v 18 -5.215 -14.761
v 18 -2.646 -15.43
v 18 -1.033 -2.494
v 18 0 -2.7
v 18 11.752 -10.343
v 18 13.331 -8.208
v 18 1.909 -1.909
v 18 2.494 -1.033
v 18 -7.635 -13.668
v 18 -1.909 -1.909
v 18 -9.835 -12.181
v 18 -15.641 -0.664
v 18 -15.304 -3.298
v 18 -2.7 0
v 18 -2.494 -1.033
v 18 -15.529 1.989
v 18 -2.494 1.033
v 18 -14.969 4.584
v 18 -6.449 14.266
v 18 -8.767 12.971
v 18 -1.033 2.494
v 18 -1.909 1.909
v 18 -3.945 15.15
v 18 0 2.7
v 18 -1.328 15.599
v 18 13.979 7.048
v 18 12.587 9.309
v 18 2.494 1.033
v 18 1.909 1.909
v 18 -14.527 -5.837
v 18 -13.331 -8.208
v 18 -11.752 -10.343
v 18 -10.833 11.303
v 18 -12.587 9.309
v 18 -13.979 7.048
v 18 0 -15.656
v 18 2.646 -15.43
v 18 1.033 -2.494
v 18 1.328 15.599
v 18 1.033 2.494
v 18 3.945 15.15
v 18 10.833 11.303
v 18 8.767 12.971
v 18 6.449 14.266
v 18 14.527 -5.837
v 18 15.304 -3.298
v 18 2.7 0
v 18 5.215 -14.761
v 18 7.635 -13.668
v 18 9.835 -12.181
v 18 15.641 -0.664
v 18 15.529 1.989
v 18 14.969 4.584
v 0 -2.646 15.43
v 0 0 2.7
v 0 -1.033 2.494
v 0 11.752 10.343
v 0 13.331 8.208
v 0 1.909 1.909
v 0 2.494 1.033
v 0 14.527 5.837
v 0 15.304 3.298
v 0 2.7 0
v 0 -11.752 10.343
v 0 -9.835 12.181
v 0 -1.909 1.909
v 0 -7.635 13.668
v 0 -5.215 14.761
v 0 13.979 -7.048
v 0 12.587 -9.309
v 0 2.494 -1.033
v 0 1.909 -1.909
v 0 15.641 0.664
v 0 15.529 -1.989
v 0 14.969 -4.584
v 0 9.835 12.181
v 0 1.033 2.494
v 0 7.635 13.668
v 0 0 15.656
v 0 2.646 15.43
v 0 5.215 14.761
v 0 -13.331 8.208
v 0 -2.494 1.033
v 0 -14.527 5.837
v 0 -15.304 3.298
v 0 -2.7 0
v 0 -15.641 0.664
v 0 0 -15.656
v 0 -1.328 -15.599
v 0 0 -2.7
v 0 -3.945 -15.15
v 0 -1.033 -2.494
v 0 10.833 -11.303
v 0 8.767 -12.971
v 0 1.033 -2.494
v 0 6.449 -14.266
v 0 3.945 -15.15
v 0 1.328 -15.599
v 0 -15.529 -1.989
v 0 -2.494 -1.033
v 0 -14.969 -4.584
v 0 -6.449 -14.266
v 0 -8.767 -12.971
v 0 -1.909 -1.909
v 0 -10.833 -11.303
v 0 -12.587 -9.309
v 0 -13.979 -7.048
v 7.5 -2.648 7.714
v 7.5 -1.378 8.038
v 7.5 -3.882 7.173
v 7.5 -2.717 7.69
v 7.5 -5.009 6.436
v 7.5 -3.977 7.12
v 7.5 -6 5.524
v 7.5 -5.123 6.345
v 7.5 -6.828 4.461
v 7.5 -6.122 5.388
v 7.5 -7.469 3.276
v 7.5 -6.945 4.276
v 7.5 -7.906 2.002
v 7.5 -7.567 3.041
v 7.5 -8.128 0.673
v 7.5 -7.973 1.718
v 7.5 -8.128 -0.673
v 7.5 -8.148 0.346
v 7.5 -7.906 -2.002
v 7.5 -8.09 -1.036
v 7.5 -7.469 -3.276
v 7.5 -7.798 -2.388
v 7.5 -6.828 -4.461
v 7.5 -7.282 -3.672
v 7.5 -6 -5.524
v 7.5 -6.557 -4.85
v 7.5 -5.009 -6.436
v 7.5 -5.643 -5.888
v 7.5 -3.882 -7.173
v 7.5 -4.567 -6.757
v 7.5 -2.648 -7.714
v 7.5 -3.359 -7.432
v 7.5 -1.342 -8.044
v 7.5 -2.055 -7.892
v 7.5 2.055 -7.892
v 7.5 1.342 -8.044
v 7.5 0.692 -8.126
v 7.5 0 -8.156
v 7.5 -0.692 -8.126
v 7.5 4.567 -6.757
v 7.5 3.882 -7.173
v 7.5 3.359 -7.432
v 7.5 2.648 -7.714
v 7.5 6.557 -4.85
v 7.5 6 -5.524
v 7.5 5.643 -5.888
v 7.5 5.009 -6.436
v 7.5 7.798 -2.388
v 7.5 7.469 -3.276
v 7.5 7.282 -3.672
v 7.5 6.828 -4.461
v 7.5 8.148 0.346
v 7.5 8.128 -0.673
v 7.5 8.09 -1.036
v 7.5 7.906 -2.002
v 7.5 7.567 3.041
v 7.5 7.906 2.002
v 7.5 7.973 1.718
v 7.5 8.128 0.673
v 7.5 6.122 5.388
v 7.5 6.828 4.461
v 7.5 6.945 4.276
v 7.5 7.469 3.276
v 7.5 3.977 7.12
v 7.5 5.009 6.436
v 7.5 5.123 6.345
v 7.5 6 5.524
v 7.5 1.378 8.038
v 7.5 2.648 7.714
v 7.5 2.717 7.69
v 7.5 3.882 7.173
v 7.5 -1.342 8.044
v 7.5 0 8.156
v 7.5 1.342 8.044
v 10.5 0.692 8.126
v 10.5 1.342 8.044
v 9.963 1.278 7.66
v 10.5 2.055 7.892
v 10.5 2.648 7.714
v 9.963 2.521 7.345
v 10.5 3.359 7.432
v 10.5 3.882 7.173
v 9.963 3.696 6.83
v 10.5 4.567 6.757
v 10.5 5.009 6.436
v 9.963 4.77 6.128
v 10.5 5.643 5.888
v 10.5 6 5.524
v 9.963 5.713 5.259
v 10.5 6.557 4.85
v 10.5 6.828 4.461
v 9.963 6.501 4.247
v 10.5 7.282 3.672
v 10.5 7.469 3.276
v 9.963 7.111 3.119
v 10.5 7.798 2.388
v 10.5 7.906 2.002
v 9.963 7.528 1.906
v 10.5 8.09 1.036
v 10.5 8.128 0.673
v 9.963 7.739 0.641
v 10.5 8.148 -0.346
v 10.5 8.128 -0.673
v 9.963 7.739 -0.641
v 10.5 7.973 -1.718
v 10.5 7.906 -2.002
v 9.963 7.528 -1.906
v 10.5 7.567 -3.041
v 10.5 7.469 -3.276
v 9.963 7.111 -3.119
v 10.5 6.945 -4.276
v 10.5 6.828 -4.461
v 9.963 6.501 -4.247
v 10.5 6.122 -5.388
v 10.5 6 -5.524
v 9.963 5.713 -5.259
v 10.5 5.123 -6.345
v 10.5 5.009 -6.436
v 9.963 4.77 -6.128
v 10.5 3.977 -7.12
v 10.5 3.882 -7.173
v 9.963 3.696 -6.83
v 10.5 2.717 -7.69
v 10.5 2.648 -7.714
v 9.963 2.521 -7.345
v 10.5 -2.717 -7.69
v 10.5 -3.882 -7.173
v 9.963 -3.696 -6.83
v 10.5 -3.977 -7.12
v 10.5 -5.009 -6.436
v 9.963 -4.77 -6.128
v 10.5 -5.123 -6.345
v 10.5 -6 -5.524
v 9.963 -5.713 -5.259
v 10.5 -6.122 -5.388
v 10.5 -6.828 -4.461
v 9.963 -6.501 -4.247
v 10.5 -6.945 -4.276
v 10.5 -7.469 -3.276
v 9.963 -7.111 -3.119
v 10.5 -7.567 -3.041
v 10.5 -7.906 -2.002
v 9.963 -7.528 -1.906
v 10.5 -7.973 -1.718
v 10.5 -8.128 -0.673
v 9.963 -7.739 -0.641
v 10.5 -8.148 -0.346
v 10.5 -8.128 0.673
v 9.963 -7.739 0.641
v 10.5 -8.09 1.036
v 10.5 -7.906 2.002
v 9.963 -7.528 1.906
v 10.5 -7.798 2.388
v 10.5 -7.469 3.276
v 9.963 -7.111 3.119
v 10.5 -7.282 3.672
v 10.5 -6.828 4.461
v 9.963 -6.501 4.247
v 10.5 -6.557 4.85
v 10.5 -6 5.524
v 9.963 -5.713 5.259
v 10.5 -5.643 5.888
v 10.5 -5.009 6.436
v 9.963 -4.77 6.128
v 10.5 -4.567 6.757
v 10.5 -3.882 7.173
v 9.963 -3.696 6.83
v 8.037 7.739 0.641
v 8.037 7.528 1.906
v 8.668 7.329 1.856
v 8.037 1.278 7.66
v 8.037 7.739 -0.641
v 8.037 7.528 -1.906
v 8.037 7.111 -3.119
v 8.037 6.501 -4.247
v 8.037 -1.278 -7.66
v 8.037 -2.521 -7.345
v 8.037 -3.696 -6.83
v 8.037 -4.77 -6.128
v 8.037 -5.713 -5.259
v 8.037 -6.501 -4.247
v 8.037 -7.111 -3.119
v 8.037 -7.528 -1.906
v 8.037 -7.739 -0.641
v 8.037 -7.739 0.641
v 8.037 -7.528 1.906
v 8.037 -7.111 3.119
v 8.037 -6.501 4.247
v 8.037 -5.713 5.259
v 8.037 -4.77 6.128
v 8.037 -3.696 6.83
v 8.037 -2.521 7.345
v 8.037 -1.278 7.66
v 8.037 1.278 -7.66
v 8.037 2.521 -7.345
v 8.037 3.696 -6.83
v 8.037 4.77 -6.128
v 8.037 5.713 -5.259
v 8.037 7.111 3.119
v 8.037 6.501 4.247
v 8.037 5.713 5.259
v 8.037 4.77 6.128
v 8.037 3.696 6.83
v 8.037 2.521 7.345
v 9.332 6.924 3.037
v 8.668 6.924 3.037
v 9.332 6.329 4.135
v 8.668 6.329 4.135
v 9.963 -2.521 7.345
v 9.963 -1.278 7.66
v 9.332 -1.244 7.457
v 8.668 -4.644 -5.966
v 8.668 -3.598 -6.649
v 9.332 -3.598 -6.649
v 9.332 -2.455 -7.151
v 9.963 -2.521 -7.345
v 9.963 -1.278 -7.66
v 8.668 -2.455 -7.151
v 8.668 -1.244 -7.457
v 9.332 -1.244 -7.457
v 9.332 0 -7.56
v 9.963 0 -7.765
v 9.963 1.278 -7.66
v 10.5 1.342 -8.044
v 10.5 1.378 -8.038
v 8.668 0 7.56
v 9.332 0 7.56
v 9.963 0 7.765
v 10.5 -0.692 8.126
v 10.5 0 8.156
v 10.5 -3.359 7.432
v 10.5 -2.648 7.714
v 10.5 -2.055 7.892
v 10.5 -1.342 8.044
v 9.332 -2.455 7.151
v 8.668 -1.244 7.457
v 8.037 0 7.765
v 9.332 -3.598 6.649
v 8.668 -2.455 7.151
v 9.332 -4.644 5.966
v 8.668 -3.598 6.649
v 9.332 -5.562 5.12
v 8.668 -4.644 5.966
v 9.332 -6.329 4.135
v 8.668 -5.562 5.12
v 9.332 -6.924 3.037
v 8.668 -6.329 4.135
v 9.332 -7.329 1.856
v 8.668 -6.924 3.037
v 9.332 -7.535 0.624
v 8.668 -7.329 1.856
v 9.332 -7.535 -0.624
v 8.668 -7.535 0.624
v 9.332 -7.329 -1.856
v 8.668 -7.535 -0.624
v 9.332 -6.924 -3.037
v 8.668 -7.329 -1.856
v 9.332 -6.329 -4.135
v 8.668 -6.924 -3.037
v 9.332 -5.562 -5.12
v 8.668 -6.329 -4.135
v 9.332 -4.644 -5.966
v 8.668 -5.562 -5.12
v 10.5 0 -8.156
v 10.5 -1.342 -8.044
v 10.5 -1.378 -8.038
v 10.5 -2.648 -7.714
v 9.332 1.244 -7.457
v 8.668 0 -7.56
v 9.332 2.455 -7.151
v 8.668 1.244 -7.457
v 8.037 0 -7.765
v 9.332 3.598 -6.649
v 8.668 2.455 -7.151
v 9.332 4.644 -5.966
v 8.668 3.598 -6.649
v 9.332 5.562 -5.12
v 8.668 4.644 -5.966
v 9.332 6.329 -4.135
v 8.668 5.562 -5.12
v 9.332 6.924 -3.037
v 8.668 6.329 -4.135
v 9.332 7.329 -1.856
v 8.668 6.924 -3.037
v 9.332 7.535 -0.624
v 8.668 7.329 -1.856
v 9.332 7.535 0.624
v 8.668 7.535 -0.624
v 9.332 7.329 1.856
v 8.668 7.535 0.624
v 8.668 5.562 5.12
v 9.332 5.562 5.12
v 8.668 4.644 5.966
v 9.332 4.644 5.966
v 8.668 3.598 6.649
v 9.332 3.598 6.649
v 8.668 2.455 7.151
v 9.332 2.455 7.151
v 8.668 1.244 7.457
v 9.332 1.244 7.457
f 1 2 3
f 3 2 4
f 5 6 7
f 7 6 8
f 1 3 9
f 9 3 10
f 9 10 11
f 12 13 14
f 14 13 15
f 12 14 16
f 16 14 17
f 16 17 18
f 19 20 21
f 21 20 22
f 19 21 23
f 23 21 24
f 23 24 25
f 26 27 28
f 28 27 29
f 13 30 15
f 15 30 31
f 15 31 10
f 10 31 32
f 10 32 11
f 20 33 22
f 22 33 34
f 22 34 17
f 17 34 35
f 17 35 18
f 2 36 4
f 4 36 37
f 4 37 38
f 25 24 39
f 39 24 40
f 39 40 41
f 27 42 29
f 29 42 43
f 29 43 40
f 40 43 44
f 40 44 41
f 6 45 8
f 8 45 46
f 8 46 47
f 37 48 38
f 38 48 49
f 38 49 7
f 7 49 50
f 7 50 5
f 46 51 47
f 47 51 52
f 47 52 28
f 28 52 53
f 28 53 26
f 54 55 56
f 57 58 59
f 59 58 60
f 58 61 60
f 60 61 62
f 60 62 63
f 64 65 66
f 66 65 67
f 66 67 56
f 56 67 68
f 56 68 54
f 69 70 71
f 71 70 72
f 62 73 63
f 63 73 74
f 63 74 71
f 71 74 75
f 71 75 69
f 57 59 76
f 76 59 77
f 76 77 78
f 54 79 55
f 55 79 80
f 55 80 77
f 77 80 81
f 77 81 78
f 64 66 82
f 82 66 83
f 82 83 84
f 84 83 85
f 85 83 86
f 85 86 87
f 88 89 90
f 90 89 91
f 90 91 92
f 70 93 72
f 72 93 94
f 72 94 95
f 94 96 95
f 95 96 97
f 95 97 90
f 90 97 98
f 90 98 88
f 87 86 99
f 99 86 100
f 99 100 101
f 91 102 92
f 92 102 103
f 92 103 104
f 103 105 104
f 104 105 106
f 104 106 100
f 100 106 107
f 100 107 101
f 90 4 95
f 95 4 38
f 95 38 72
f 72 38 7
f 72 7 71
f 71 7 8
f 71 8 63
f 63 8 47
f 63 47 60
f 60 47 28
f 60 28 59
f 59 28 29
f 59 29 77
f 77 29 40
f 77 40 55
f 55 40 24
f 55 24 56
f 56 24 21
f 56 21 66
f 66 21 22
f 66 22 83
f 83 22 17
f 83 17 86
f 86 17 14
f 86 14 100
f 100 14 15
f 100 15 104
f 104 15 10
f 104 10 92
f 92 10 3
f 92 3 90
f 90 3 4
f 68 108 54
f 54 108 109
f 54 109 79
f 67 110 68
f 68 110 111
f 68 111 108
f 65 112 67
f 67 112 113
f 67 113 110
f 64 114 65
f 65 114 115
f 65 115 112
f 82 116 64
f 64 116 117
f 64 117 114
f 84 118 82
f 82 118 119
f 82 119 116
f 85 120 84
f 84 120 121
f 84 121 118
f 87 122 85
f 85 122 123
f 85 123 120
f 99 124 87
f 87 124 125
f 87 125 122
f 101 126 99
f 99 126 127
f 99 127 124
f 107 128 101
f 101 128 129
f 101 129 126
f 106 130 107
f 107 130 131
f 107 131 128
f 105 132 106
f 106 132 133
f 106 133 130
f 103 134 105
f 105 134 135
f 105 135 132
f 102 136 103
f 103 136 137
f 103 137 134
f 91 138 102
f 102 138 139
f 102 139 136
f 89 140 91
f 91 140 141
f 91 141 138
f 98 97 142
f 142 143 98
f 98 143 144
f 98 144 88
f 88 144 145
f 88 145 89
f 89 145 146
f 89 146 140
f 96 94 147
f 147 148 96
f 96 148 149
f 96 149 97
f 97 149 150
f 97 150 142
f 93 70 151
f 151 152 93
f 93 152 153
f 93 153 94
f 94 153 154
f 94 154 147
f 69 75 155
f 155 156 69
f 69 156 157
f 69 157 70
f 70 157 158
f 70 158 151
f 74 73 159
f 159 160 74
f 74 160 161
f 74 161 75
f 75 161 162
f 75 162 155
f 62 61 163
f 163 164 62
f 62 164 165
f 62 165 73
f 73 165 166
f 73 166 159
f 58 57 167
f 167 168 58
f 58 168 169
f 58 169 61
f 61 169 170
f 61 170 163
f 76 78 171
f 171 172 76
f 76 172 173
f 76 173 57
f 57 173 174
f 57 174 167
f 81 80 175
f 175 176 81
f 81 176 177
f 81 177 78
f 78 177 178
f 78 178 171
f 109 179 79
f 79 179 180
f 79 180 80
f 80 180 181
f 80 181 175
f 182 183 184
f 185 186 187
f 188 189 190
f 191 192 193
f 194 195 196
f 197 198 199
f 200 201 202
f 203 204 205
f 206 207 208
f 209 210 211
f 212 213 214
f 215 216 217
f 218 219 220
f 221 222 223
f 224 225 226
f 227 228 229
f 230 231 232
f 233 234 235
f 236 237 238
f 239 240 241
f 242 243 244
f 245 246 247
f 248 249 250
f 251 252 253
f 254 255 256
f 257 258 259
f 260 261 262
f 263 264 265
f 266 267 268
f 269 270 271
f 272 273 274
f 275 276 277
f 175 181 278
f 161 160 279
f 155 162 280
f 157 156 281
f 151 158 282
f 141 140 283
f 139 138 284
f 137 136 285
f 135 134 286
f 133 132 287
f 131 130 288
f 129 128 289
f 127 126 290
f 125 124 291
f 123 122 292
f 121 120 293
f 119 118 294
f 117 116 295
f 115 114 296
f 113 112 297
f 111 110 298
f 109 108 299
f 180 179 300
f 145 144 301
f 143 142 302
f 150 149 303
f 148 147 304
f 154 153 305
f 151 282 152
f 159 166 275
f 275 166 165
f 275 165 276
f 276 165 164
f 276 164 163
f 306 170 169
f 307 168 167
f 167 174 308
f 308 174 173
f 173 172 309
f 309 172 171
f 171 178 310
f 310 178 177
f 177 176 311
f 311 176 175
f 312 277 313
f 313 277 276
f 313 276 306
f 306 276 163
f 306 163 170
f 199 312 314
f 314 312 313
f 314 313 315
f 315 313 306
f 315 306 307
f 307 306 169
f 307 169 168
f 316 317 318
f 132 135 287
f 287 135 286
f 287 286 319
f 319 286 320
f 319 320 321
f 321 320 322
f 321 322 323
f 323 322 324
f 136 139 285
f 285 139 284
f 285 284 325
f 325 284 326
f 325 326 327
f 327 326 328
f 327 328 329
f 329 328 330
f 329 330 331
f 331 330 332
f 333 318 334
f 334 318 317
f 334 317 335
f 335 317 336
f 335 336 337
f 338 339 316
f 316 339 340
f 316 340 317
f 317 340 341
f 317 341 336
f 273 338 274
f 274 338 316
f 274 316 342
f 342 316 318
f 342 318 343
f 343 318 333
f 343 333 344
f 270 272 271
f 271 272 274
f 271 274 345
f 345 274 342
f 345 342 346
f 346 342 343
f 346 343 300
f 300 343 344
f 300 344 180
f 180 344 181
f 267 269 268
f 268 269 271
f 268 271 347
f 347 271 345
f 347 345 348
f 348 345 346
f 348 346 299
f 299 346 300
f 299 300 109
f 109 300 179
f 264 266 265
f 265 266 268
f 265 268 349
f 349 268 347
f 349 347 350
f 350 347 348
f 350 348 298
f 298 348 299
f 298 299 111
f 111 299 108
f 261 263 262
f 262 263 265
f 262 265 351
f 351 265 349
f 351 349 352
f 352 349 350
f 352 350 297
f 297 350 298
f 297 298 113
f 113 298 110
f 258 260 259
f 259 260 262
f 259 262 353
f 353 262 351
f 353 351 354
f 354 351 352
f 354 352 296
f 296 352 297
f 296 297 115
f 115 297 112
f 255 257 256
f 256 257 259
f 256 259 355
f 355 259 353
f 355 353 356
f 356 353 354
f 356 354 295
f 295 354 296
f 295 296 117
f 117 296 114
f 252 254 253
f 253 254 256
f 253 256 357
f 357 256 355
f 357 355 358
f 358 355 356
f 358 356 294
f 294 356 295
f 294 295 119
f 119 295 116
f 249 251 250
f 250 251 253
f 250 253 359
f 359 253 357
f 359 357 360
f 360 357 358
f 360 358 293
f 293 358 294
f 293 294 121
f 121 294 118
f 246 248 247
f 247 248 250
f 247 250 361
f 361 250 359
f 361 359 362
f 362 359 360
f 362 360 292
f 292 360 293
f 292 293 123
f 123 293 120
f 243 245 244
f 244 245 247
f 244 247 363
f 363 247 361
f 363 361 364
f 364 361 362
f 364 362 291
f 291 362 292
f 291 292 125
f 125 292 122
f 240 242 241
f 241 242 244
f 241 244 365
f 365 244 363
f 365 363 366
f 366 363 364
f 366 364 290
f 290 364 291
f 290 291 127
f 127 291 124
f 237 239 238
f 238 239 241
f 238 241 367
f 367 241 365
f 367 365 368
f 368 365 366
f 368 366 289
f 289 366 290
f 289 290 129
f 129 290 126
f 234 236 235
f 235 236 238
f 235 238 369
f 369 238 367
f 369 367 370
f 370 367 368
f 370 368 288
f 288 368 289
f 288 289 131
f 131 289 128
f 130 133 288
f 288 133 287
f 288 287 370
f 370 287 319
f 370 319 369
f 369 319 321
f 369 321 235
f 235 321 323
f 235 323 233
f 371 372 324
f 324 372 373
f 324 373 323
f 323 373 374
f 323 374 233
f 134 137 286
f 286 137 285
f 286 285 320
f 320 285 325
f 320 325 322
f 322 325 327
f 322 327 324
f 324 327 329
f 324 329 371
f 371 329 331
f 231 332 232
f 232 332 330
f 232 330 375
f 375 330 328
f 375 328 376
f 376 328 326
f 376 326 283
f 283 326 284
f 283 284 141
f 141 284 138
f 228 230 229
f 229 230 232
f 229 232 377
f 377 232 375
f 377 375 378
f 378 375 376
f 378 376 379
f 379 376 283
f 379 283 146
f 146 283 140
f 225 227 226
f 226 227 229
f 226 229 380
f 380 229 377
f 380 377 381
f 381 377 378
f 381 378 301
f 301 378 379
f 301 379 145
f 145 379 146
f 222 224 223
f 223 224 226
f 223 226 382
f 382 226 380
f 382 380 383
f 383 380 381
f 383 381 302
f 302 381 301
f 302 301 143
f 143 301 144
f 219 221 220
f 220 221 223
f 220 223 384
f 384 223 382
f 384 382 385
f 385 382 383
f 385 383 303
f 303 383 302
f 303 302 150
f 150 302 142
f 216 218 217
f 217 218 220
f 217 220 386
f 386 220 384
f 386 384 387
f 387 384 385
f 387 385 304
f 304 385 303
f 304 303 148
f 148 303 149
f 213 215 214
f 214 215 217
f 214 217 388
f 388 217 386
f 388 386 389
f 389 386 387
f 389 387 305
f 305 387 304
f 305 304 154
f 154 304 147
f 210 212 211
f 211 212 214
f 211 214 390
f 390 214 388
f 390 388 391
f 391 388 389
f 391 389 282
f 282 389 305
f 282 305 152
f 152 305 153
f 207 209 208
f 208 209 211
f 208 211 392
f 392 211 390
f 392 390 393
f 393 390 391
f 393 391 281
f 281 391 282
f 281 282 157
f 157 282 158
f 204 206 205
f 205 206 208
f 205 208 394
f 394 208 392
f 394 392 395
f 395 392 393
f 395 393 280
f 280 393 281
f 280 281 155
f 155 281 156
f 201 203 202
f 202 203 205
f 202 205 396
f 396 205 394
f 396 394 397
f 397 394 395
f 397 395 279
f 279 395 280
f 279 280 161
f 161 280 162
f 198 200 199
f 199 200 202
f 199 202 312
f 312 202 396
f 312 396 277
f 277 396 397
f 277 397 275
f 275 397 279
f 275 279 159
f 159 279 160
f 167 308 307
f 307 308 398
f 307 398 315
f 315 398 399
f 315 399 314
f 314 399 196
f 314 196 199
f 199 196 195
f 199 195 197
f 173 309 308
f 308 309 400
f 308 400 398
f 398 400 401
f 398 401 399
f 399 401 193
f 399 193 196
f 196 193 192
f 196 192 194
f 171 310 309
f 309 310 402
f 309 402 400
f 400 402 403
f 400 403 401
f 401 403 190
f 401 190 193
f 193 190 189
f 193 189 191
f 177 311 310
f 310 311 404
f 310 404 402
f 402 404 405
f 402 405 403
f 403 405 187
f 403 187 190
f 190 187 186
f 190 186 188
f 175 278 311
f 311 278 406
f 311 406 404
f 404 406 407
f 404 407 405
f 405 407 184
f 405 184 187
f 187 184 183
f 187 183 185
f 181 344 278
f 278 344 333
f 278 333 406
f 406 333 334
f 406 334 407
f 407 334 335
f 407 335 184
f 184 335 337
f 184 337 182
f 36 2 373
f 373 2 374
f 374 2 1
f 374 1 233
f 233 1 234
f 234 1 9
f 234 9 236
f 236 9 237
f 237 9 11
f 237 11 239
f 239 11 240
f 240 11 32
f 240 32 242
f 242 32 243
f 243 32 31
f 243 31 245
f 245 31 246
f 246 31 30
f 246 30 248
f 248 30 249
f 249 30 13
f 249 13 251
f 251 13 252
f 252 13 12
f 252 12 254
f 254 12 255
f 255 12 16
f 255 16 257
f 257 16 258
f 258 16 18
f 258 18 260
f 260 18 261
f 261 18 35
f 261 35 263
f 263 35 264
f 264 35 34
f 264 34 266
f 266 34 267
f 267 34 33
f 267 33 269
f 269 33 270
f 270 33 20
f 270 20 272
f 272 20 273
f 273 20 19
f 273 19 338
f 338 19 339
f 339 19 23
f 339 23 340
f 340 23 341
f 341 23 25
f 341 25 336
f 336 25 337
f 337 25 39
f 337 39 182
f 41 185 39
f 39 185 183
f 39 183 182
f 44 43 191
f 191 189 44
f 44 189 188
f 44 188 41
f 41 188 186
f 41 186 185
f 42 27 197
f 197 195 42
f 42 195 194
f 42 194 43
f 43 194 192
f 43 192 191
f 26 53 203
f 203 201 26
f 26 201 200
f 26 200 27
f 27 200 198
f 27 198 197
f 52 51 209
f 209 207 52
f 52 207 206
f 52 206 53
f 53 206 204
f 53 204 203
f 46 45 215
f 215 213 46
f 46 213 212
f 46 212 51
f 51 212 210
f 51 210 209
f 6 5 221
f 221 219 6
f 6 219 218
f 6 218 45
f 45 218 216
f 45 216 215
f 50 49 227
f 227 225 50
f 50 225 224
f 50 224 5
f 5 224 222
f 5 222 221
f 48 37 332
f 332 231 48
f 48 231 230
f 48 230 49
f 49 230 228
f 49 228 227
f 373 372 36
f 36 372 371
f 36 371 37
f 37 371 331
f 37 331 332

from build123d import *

# Parameters (mm, degrees)
SKETCH1_R           = 17.5
BOSS_EXTRUDE1_DEPTH = 18
SKETCH2_R           = 2.7
CUT_EXTRUDE1_DEPTH  = 18


with BuildPart() as part:
    # Sketch1 → Boss-Extrude1 (new body)
    with BuildSketch(Plane(origin=(0, 0, 0), x_dir=(0, 0, -1), z_dir=(1, 0, 0))):
        Circle(SKETCH1_R)
    extrude(amount=BOSS_EXTRUDE1_DEPTH)

    # Sketch2 → Cut-Extrude1 (cut)
    with BuildSketch(Plane(origin=(18, 0, 0), x_dir=(0, 0, -1), z_dir=(1, 0, 0))):
        Circle(SKETCH2_R)
    extrude(amount=-CUT_EXTRUDE1_DEPTH, mode=Mode.SUBTRACT)

    # Sketch3 → Cut-Revolve1 (revolve, cut)
    with BuildSketch(Plane.XY):
        with BuildLine():
            Line((10.5, 8.155563792), (24.900813008, 22.5563768))
            Line((24.900813008, 22.5563768), (-6.900813008, 22.5563768))
            Line((-6.900813008, 22.5563768), (7.5, 8.155563792))
            ThreePointArc((7.5, 8.155563792), (9, 7.534243448), (10.5, 8.155563792))
        make_face()
    revolve(axis=Axis((0, 0, 0), (1, 0, 0)), mode=Mode.SUBTRACT)


solid = part.part
